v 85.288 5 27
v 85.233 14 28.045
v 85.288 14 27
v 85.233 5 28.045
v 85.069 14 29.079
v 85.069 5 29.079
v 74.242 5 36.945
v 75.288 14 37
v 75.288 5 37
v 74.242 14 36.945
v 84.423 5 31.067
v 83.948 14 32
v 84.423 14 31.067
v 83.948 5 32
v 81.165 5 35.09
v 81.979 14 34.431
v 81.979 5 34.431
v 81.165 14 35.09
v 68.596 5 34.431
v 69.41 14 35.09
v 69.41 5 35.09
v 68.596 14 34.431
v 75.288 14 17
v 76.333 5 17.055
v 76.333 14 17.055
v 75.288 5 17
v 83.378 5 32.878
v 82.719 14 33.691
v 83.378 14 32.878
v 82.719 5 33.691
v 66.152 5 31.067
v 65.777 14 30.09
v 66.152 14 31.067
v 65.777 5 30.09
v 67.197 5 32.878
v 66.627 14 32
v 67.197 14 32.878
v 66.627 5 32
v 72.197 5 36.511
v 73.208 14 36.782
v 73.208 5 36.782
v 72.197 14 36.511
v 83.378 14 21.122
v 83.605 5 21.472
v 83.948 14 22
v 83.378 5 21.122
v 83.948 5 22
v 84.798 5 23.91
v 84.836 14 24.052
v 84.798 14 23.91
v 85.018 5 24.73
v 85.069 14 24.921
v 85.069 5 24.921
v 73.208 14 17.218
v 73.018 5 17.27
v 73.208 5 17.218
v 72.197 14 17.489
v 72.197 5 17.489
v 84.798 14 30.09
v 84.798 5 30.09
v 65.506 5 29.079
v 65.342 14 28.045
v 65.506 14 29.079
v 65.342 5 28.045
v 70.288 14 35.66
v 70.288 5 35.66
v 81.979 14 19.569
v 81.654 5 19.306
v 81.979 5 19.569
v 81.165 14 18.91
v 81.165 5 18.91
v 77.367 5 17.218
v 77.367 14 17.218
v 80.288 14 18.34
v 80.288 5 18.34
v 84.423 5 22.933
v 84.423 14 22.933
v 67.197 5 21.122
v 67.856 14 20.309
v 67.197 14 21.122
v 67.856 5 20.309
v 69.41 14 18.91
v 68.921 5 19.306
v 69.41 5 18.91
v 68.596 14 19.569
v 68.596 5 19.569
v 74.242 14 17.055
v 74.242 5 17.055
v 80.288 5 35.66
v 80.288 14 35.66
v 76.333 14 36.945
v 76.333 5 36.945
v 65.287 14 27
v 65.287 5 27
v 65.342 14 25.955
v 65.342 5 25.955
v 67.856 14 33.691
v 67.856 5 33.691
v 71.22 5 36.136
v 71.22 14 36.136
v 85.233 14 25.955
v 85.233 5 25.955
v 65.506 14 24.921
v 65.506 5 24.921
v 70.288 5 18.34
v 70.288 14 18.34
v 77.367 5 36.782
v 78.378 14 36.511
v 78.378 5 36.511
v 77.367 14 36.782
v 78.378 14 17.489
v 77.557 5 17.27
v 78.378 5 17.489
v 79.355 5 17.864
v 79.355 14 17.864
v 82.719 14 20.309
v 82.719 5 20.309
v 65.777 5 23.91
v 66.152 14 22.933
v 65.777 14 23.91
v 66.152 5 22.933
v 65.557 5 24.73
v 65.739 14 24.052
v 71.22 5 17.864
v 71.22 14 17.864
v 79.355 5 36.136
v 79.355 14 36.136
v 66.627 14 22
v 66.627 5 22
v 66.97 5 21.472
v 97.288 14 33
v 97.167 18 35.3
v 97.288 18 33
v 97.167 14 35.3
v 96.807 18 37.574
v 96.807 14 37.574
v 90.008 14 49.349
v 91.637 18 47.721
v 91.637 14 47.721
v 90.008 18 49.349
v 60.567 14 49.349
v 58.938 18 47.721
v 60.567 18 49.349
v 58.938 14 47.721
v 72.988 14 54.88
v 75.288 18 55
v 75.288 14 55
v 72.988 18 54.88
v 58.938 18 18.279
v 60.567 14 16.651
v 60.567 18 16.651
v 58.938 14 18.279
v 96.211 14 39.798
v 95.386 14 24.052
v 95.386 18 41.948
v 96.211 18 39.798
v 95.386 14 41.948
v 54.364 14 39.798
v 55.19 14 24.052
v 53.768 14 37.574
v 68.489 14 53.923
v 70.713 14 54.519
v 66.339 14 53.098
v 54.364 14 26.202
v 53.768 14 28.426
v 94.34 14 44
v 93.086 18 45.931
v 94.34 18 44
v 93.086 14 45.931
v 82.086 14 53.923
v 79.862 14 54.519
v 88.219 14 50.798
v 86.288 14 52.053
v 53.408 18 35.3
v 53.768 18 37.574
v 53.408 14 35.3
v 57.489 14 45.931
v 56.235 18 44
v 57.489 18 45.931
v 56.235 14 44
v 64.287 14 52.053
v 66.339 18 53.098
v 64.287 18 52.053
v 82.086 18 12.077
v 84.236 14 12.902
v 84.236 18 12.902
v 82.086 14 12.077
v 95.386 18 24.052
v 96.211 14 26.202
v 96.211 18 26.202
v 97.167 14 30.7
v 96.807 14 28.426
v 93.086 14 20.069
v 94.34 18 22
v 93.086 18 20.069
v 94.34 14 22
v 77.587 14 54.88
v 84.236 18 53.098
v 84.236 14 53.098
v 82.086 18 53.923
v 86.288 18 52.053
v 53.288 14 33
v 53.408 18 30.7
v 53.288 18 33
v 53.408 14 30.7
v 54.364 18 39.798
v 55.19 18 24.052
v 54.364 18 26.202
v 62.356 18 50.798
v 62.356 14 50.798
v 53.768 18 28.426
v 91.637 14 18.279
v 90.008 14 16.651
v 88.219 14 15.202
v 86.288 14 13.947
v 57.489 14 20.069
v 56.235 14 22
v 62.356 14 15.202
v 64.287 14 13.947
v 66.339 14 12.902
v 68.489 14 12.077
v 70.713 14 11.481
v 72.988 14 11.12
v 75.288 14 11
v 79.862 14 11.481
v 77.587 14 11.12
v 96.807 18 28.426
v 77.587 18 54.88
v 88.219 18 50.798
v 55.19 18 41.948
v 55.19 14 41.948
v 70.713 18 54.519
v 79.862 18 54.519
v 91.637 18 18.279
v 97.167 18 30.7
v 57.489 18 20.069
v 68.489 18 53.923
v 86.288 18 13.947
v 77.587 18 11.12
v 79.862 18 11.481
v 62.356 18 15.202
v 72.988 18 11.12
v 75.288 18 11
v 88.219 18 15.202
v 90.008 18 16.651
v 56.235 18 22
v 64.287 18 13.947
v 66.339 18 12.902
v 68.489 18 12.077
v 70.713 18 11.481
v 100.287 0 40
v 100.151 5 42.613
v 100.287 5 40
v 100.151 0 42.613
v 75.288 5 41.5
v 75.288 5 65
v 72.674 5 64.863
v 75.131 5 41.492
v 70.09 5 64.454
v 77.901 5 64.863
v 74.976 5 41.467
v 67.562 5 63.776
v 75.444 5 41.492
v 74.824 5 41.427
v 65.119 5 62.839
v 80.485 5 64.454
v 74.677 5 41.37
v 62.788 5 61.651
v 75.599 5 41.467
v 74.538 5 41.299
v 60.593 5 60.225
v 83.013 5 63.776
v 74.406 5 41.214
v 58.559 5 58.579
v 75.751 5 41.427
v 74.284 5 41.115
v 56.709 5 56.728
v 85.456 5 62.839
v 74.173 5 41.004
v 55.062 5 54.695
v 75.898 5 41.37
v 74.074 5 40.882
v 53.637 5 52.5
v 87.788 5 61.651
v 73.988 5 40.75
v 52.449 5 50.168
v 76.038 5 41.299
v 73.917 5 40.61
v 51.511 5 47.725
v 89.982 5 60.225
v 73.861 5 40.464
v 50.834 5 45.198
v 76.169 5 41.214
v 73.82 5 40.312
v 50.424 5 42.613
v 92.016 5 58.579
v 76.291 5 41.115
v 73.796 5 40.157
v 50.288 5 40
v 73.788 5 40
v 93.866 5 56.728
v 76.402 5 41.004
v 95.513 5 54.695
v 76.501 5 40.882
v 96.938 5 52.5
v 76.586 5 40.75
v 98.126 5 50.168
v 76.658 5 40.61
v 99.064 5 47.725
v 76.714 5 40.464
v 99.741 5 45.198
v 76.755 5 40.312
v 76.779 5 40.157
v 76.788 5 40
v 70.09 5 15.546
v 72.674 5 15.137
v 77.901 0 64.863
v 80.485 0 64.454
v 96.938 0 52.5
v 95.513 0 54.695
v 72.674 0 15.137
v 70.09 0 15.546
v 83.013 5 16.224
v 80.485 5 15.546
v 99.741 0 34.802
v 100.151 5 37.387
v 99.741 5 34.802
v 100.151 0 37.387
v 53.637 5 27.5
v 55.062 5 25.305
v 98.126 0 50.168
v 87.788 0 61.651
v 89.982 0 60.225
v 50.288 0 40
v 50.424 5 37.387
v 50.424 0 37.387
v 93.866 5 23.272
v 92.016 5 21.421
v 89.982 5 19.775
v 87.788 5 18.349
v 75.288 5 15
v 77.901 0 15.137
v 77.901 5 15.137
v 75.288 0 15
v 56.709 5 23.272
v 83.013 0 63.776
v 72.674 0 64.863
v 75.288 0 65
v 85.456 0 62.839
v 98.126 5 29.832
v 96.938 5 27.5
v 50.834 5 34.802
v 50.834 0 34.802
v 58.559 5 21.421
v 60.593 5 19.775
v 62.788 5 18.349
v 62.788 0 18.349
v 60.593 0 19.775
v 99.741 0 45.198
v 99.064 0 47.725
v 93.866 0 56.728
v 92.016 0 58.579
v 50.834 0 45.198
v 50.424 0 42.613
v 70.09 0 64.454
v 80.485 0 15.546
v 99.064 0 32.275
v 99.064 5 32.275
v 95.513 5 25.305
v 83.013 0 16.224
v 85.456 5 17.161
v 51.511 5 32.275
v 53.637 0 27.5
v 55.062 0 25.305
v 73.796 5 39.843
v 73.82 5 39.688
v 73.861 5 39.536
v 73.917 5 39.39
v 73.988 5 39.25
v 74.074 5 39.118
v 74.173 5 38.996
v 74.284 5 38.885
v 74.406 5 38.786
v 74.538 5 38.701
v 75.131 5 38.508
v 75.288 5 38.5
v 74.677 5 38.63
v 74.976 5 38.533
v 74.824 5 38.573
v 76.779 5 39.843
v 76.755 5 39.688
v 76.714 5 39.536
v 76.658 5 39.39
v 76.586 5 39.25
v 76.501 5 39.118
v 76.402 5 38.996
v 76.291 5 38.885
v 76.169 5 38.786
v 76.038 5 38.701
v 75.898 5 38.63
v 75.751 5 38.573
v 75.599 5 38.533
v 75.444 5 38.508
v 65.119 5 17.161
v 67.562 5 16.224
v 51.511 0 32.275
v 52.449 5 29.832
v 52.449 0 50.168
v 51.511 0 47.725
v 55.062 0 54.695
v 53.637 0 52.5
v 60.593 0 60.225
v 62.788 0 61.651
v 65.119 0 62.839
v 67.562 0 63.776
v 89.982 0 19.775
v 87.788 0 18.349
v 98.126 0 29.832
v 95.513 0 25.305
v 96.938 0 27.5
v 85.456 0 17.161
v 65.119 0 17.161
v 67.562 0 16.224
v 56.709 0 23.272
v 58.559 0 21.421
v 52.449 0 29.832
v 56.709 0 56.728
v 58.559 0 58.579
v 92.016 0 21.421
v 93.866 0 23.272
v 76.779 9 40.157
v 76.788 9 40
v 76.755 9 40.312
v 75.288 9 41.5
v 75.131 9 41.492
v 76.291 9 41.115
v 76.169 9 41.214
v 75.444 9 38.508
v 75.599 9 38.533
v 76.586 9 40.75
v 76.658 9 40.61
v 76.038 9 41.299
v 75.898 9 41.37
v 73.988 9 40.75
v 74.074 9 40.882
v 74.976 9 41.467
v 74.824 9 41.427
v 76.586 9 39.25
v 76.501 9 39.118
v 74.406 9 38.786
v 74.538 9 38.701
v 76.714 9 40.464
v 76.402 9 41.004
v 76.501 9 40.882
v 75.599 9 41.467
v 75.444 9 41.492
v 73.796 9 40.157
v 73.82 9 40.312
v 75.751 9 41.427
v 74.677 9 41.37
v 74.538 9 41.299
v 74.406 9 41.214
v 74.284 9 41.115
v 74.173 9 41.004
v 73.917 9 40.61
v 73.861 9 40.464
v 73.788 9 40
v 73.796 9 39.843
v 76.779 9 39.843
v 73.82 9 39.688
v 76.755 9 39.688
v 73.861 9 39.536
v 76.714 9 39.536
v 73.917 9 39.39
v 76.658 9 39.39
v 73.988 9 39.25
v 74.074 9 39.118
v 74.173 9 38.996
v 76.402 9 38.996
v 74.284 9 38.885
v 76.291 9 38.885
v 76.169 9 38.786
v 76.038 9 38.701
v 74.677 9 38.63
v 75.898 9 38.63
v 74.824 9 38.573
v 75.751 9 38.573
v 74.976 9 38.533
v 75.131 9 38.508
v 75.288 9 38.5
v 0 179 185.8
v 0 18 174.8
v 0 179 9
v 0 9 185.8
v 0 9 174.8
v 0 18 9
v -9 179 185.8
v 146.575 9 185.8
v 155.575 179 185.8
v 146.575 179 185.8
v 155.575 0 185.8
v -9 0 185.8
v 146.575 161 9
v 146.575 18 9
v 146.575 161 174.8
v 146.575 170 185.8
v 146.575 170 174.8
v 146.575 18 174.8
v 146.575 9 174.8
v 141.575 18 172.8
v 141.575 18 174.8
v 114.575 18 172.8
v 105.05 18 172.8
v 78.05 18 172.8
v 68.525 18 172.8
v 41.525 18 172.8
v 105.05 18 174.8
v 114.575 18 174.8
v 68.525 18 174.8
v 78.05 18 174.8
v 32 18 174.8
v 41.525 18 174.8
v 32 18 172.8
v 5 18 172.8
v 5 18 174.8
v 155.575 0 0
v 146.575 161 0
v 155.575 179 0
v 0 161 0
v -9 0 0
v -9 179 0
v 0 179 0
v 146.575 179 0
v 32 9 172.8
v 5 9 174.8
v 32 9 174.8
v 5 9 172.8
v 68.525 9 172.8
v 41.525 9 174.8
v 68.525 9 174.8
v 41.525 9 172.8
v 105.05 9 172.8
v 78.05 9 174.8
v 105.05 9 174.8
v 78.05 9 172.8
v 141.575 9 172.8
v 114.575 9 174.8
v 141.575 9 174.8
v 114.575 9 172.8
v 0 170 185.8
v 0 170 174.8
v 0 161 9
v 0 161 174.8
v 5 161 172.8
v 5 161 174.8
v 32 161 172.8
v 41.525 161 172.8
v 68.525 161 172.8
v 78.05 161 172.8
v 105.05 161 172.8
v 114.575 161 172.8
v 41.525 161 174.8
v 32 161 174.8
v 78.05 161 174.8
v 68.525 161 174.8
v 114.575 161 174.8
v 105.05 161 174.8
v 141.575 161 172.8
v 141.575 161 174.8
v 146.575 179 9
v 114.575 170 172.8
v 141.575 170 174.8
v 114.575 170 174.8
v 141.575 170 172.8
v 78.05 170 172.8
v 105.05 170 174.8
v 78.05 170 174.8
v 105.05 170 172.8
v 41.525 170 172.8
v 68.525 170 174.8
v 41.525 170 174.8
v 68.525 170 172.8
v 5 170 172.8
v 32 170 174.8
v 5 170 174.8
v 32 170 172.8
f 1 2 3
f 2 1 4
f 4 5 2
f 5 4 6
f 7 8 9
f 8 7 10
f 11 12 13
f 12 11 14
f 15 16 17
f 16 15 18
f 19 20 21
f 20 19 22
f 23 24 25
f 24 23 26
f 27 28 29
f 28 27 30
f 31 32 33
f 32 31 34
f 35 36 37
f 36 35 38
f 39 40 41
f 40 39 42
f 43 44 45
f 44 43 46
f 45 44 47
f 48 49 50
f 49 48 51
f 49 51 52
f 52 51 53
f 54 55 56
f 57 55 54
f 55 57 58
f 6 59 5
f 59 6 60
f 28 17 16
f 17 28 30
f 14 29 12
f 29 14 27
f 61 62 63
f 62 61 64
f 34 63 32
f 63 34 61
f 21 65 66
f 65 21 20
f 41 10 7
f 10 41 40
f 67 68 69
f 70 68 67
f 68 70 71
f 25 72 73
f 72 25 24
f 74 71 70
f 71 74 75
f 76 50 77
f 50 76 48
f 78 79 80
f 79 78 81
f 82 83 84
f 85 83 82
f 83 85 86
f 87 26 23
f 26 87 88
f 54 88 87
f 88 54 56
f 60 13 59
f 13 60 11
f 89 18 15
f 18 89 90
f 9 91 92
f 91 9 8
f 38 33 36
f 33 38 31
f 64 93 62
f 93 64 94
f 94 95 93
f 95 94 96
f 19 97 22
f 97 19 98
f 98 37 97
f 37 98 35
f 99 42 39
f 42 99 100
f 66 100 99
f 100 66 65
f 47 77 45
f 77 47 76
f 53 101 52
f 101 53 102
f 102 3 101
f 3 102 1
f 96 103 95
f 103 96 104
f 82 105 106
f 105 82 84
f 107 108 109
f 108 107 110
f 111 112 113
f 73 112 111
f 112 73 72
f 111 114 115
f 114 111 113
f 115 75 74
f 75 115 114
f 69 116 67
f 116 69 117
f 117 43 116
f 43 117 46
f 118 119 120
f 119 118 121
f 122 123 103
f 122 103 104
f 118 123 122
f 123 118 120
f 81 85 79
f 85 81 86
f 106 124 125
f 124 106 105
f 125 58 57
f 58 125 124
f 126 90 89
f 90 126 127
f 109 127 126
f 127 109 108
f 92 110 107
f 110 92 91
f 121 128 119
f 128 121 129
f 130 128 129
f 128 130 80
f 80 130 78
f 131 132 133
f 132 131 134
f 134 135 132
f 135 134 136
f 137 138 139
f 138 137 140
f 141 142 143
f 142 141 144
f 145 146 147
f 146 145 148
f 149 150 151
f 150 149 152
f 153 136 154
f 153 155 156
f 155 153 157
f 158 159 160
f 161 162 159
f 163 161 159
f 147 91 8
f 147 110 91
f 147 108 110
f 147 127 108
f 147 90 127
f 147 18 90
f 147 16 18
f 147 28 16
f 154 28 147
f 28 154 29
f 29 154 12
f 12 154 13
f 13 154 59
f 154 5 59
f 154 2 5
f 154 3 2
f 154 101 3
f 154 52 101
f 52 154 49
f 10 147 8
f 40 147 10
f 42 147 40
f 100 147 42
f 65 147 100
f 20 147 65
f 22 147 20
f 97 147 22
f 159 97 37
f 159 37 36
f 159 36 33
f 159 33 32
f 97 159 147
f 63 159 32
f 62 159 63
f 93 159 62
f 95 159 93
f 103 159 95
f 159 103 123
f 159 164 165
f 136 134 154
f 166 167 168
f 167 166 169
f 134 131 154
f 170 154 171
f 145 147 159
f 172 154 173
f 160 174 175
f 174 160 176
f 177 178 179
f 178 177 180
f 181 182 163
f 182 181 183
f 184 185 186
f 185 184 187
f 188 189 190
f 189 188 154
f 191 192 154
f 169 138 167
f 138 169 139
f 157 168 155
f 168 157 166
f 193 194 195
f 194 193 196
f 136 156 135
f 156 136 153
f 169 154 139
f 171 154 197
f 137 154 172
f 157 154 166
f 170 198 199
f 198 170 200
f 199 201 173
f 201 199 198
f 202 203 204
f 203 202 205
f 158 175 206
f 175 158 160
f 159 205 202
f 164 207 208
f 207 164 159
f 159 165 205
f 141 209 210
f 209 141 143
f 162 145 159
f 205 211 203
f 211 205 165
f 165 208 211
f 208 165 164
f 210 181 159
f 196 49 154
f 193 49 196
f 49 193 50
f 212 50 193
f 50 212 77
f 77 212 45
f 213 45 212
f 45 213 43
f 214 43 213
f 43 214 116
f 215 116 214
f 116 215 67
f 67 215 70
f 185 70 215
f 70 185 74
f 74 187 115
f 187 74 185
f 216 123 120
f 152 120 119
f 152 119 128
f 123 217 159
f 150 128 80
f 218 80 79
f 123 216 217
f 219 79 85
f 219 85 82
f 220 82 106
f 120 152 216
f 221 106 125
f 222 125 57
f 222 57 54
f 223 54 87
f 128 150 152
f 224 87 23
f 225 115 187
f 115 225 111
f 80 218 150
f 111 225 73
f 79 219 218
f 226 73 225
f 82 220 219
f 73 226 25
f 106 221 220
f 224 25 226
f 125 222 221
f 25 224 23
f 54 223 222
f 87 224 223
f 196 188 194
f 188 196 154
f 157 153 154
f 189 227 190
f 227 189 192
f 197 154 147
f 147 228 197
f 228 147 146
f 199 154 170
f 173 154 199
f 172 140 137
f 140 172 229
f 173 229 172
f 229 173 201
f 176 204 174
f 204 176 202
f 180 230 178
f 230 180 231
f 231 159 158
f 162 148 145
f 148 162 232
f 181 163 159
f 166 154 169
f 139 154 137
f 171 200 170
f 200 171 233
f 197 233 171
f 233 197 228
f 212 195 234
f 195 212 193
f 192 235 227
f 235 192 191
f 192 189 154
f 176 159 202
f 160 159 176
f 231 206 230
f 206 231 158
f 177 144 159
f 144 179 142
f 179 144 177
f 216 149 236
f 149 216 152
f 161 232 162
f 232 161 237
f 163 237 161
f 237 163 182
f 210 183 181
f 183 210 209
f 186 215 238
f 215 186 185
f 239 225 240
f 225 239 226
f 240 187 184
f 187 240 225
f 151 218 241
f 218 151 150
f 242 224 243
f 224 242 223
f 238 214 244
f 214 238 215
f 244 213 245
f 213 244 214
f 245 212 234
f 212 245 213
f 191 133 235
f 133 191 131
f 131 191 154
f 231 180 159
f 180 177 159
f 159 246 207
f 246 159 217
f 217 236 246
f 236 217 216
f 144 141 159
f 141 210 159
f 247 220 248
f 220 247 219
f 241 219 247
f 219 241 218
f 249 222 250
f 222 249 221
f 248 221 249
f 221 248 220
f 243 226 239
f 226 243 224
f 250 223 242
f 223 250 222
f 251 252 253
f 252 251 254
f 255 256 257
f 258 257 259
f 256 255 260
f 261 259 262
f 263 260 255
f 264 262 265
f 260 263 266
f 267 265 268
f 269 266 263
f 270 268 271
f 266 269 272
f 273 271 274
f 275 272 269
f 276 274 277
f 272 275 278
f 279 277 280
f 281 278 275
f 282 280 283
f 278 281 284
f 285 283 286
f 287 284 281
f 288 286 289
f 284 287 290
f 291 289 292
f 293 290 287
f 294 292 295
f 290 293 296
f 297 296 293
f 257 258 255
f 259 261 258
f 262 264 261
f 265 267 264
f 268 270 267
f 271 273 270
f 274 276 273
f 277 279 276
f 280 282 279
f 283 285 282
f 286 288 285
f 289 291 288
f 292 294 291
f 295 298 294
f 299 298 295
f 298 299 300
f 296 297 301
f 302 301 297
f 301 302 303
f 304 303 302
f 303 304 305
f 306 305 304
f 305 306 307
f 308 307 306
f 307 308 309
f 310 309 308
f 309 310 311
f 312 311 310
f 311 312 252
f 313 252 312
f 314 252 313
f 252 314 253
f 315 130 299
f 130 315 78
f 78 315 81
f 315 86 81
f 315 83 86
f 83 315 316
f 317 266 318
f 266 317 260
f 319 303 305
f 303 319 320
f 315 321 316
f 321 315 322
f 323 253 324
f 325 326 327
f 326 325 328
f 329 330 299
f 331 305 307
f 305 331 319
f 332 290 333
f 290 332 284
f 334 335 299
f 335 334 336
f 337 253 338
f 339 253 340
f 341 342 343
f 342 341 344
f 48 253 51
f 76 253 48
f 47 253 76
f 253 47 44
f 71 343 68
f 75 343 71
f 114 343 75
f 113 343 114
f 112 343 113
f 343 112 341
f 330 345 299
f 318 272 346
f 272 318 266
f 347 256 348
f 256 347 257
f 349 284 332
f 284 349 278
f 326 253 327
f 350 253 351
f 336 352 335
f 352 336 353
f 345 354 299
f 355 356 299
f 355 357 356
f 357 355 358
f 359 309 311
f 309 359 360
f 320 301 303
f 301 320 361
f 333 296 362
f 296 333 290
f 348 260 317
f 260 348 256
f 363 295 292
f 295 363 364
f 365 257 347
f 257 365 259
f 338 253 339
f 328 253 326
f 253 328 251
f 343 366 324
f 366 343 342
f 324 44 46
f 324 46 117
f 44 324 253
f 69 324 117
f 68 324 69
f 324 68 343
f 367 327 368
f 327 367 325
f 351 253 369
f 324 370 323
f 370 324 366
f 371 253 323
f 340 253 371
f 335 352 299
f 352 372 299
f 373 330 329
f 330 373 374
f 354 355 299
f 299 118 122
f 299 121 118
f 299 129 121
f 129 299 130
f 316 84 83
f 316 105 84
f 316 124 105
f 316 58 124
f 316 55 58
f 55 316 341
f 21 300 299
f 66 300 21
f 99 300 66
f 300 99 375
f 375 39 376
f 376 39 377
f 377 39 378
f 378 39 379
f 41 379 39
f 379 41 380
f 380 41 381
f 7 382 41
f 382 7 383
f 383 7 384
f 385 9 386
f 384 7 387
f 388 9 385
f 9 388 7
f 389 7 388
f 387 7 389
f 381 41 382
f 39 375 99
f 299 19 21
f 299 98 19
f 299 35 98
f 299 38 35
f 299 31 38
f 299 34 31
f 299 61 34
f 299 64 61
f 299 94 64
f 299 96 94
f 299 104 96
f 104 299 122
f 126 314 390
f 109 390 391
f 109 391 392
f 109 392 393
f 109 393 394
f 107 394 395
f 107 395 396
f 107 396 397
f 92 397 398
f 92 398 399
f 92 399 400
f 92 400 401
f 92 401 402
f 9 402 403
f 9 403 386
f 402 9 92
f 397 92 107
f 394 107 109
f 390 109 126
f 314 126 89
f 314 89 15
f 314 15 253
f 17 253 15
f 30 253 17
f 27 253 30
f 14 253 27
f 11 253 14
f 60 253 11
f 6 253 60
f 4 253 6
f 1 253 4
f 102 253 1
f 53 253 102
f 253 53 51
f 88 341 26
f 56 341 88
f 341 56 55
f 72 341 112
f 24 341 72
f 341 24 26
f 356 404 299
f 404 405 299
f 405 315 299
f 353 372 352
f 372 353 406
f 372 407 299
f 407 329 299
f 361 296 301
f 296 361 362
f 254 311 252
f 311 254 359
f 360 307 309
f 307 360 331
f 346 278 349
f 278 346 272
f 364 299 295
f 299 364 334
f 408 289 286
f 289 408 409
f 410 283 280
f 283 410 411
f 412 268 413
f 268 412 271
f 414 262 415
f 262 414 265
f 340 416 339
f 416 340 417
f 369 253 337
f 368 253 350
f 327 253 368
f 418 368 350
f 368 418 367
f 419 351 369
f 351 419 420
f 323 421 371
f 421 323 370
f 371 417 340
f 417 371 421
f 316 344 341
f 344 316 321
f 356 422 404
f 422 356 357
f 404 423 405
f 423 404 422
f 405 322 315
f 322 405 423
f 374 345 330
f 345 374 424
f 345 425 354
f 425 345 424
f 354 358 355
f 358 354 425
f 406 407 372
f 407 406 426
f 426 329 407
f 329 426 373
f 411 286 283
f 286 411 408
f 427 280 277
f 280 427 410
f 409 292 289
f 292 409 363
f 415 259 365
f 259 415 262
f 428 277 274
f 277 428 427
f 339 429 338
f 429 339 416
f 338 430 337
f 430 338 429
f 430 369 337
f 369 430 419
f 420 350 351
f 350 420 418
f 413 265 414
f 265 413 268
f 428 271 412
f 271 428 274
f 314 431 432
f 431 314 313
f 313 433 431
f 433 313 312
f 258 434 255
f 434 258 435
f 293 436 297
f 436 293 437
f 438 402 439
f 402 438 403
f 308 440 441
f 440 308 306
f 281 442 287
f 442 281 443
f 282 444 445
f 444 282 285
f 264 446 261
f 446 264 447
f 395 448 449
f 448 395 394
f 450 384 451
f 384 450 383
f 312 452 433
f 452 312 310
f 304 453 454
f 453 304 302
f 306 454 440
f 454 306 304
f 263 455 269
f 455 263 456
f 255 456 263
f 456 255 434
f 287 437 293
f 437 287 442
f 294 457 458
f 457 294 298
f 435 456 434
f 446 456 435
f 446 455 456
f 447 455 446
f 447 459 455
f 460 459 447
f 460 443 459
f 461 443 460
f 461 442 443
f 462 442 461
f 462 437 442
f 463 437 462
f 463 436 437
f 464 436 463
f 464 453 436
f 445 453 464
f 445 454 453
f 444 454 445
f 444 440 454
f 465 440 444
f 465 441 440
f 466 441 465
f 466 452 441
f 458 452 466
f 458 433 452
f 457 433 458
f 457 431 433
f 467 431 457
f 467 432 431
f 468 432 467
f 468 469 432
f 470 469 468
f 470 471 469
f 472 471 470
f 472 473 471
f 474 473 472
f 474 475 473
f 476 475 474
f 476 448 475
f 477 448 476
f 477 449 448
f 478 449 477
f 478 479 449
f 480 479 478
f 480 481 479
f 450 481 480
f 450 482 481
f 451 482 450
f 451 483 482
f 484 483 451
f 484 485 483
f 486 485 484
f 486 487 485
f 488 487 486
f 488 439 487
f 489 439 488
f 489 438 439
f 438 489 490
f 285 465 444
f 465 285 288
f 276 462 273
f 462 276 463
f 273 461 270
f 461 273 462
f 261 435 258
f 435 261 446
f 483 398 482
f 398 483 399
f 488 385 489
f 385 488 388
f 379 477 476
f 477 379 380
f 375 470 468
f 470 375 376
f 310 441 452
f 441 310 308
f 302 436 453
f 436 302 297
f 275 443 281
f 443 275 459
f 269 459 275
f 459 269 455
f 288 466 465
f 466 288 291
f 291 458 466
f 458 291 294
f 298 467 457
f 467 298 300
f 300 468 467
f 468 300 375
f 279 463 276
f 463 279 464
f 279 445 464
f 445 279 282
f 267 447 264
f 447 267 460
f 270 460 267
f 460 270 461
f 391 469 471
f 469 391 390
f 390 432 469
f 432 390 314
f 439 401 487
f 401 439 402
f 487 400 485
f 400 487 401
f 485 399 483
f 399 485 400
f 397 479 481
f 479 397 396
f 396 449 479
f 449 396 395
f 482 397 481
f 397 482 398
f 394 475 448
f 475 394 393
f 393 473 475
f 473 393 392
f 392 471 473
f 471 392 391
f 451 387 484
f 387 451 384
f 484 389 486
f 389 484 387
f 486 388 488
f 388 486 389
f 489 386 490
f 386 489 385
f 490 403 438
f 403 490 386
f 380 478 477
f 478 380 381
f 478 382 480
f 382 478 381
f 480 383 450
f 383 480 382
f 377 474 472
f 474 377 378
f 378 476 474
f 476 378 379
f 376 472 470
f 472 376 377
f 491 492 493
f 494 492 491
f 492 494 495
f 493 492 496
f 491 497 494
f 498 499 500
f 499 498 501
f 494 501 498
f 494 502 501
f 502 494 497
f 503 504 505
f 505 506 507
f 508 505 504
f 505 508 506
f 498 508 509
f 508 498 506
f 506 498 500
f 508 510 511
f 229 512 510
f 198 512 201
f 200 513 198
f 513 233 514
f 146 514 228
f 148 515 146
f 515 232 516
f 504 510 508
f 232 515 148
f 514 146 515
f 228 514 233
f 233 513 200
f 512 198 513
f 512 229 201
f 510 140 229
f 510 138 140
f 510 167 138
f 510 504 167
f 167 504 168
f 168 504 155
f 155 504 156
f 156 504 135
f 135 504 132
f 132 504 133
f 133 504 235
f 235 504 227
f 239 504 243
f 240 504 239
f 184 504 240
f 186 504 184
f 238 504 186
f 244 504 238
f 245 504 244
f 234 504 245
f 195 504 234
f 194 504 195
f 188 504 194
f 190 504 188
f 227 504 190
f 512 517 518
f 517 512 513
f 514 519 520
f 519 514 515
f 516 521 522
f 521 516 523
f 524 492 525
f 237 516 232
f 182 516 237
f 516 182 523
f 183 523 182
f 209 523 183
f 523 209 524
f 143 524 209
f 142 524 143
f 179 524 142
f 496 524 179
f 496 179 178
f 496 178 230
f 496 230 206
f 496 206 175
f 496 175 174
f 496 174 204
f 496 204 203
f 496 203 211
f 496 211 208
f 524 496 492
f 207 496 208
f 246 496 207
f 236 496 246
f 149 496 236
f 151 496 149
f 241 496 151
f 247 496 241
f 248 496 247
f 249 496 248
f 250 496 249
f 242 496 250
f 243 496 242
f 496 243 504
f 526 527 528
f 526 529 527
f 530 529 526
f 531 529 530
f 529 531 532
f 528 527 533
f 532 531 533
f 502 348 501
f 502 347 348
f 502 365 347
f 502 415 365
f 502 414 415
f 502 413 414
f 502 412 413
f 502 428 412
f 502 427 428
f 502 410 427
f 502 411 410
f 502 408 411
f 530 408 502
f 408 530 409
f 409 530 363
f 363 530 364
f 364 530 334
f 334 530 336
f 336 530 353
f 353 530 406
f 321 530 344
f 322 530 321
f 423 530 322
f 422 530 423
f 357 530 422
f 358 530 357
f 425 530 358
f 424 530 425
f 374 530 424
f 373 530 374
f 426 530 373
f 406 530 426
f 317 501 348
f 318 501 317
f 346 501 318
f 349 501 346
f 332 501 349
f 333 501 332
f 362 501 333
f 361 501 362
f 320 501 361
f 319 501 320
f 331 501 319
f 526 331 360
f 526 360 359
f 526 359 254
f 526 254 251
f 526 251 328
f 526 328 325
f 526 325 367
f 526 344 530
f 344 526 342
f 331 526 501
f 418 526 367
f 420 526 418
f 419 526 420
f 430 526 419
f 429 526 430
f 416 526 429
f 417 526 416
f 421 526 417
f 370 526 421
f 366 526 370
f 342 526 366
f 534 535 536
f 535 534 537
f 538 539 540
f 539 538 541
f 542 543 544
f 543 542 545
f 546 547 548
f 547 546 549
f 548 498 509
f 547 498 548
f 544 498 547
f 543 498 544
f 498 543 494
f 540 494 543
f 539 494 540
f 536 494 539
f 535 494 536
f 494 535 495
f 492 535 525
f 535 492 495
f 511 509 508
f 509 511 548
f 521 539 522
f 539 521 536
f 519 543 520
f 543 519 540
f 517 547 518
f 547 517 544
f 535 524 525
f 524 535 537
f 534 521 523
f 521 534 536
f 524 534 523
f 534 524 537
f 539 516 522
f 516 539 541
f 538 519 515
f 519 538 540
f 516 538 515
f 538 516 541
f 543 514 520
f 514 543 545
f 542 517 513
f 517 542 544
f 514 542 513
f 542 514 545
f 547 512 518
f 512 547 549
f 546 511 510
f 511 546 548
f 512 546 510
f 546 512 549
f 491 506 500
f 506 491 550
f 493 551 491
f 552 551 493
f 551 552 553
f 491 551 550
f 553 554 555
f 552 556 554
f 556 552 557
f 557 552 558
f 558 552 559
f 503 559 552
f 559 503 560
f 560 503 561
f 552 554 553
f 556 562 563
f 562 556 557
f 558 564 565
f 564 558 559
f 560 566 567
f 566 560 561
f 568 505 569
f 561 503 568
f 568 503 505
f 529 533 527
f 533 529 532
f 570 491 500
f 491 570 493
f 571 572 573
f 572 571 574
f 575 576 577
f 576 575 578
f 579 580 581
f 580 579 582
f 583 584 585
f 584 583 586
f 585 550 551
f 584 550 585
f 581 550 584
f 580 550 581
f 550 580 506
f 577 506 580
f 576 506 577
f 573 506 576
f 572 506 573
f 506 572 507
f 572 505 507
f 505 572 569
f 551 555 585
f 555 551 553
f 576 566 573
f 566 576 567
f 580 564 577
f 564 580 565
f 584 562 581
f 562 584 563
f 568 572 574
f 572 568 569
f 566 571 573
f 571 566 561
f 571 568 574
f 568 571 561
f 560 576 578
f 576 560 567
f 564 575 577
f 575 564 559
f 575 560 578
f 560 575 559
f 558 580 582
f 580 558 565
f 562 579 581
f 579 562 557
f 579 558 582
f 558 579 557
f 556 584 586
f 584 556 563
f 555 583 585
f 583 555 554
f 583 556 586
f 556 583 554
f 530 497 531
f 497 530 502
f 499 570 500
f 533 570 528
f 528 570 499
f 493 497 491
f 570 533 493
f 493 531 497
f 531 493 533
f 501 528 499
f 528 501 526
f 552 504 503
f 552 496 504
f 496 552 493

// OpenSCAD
/*
Open 4 Frame Mating Nuc, 
released to the Public Domain by Robert Niles
*/


// these sizes are the best
// doesn't include each 9mm side
// the width allows the use of three frames which can be
// spanned together equaling one full standard langstroth frame
// so you can start them in a regular hive and/or move them
// from the nuc to a regular hive when finished.

width = 146.575; // x axis 
depth = 179; // y axis
framelength = depth-18; // y axis: minus 9mm from each side
echo(framelength=framelength);
height = 185.8; // z axis : 158.8 frame height + 9mm above + 9mm below + the 9mm bottom

// front wall
difference() {
    fb_wall(width,height);
    translate([(width/2)-25,0,8]) entrance_area();    
}    
// back wall
translate([width,depth,0]) rotate([180,180,0]) fb_wall(width,height);

// side 1
color("green") translate([-9,0,0]) cube([9,depth,height]);

// side 2
color("green") translate([width,0,0]) cube([9,depth,height]);


//bottom
cube([width,depth,9]);





module fb_wall(w=146.575,h=185.8){  
    difference() {
        // basic side
        cube([w,18,h]);
        
        // frame ledge
        translate([w,9,h-11]) rotate([0,0,90]) cube([9.525,w,16.1]);

        // frame grooves
        translate([5,9,h-13]) cube([27,9.525,14]);
        translate([5+27+9.525,9,h-13]) cube([27,9.525,14]);
        translate([5+27+9.525+27+9.525,9,h-13]) cube([27,9.525,14]);
        translate([5+27+9.525+27+9.525+27+9.525,9,h-13]) cube([27,9.525,14]);   
    }
}


module entrance_area() {
        $fn=60;
        // create the entrance hole
        translate([27,20,19]) {
            rotate([90,0,0]) {
                color("green") {
                cylinder(h=21, r=10);
               }
            }
        }
        

        translate([27,35,25]) {
            rotate([90,0,0]) {
                color("blue") {
                cylinder(h=21, r=22);
               }
            }
        }
        
            
        // gate area
        translate([27,5,32]) {
            rotate([90,0,0]) {
                color("green") {
                cylinder(h=6, r=25);
               }
            }
        }
        
        // gate area screw hole
        translate([27,9,32]) {
            rotate([90,0,0]) {
                color("red") {
                cylinder(h=10, r=1.5);
               }
            }
        }        
}
